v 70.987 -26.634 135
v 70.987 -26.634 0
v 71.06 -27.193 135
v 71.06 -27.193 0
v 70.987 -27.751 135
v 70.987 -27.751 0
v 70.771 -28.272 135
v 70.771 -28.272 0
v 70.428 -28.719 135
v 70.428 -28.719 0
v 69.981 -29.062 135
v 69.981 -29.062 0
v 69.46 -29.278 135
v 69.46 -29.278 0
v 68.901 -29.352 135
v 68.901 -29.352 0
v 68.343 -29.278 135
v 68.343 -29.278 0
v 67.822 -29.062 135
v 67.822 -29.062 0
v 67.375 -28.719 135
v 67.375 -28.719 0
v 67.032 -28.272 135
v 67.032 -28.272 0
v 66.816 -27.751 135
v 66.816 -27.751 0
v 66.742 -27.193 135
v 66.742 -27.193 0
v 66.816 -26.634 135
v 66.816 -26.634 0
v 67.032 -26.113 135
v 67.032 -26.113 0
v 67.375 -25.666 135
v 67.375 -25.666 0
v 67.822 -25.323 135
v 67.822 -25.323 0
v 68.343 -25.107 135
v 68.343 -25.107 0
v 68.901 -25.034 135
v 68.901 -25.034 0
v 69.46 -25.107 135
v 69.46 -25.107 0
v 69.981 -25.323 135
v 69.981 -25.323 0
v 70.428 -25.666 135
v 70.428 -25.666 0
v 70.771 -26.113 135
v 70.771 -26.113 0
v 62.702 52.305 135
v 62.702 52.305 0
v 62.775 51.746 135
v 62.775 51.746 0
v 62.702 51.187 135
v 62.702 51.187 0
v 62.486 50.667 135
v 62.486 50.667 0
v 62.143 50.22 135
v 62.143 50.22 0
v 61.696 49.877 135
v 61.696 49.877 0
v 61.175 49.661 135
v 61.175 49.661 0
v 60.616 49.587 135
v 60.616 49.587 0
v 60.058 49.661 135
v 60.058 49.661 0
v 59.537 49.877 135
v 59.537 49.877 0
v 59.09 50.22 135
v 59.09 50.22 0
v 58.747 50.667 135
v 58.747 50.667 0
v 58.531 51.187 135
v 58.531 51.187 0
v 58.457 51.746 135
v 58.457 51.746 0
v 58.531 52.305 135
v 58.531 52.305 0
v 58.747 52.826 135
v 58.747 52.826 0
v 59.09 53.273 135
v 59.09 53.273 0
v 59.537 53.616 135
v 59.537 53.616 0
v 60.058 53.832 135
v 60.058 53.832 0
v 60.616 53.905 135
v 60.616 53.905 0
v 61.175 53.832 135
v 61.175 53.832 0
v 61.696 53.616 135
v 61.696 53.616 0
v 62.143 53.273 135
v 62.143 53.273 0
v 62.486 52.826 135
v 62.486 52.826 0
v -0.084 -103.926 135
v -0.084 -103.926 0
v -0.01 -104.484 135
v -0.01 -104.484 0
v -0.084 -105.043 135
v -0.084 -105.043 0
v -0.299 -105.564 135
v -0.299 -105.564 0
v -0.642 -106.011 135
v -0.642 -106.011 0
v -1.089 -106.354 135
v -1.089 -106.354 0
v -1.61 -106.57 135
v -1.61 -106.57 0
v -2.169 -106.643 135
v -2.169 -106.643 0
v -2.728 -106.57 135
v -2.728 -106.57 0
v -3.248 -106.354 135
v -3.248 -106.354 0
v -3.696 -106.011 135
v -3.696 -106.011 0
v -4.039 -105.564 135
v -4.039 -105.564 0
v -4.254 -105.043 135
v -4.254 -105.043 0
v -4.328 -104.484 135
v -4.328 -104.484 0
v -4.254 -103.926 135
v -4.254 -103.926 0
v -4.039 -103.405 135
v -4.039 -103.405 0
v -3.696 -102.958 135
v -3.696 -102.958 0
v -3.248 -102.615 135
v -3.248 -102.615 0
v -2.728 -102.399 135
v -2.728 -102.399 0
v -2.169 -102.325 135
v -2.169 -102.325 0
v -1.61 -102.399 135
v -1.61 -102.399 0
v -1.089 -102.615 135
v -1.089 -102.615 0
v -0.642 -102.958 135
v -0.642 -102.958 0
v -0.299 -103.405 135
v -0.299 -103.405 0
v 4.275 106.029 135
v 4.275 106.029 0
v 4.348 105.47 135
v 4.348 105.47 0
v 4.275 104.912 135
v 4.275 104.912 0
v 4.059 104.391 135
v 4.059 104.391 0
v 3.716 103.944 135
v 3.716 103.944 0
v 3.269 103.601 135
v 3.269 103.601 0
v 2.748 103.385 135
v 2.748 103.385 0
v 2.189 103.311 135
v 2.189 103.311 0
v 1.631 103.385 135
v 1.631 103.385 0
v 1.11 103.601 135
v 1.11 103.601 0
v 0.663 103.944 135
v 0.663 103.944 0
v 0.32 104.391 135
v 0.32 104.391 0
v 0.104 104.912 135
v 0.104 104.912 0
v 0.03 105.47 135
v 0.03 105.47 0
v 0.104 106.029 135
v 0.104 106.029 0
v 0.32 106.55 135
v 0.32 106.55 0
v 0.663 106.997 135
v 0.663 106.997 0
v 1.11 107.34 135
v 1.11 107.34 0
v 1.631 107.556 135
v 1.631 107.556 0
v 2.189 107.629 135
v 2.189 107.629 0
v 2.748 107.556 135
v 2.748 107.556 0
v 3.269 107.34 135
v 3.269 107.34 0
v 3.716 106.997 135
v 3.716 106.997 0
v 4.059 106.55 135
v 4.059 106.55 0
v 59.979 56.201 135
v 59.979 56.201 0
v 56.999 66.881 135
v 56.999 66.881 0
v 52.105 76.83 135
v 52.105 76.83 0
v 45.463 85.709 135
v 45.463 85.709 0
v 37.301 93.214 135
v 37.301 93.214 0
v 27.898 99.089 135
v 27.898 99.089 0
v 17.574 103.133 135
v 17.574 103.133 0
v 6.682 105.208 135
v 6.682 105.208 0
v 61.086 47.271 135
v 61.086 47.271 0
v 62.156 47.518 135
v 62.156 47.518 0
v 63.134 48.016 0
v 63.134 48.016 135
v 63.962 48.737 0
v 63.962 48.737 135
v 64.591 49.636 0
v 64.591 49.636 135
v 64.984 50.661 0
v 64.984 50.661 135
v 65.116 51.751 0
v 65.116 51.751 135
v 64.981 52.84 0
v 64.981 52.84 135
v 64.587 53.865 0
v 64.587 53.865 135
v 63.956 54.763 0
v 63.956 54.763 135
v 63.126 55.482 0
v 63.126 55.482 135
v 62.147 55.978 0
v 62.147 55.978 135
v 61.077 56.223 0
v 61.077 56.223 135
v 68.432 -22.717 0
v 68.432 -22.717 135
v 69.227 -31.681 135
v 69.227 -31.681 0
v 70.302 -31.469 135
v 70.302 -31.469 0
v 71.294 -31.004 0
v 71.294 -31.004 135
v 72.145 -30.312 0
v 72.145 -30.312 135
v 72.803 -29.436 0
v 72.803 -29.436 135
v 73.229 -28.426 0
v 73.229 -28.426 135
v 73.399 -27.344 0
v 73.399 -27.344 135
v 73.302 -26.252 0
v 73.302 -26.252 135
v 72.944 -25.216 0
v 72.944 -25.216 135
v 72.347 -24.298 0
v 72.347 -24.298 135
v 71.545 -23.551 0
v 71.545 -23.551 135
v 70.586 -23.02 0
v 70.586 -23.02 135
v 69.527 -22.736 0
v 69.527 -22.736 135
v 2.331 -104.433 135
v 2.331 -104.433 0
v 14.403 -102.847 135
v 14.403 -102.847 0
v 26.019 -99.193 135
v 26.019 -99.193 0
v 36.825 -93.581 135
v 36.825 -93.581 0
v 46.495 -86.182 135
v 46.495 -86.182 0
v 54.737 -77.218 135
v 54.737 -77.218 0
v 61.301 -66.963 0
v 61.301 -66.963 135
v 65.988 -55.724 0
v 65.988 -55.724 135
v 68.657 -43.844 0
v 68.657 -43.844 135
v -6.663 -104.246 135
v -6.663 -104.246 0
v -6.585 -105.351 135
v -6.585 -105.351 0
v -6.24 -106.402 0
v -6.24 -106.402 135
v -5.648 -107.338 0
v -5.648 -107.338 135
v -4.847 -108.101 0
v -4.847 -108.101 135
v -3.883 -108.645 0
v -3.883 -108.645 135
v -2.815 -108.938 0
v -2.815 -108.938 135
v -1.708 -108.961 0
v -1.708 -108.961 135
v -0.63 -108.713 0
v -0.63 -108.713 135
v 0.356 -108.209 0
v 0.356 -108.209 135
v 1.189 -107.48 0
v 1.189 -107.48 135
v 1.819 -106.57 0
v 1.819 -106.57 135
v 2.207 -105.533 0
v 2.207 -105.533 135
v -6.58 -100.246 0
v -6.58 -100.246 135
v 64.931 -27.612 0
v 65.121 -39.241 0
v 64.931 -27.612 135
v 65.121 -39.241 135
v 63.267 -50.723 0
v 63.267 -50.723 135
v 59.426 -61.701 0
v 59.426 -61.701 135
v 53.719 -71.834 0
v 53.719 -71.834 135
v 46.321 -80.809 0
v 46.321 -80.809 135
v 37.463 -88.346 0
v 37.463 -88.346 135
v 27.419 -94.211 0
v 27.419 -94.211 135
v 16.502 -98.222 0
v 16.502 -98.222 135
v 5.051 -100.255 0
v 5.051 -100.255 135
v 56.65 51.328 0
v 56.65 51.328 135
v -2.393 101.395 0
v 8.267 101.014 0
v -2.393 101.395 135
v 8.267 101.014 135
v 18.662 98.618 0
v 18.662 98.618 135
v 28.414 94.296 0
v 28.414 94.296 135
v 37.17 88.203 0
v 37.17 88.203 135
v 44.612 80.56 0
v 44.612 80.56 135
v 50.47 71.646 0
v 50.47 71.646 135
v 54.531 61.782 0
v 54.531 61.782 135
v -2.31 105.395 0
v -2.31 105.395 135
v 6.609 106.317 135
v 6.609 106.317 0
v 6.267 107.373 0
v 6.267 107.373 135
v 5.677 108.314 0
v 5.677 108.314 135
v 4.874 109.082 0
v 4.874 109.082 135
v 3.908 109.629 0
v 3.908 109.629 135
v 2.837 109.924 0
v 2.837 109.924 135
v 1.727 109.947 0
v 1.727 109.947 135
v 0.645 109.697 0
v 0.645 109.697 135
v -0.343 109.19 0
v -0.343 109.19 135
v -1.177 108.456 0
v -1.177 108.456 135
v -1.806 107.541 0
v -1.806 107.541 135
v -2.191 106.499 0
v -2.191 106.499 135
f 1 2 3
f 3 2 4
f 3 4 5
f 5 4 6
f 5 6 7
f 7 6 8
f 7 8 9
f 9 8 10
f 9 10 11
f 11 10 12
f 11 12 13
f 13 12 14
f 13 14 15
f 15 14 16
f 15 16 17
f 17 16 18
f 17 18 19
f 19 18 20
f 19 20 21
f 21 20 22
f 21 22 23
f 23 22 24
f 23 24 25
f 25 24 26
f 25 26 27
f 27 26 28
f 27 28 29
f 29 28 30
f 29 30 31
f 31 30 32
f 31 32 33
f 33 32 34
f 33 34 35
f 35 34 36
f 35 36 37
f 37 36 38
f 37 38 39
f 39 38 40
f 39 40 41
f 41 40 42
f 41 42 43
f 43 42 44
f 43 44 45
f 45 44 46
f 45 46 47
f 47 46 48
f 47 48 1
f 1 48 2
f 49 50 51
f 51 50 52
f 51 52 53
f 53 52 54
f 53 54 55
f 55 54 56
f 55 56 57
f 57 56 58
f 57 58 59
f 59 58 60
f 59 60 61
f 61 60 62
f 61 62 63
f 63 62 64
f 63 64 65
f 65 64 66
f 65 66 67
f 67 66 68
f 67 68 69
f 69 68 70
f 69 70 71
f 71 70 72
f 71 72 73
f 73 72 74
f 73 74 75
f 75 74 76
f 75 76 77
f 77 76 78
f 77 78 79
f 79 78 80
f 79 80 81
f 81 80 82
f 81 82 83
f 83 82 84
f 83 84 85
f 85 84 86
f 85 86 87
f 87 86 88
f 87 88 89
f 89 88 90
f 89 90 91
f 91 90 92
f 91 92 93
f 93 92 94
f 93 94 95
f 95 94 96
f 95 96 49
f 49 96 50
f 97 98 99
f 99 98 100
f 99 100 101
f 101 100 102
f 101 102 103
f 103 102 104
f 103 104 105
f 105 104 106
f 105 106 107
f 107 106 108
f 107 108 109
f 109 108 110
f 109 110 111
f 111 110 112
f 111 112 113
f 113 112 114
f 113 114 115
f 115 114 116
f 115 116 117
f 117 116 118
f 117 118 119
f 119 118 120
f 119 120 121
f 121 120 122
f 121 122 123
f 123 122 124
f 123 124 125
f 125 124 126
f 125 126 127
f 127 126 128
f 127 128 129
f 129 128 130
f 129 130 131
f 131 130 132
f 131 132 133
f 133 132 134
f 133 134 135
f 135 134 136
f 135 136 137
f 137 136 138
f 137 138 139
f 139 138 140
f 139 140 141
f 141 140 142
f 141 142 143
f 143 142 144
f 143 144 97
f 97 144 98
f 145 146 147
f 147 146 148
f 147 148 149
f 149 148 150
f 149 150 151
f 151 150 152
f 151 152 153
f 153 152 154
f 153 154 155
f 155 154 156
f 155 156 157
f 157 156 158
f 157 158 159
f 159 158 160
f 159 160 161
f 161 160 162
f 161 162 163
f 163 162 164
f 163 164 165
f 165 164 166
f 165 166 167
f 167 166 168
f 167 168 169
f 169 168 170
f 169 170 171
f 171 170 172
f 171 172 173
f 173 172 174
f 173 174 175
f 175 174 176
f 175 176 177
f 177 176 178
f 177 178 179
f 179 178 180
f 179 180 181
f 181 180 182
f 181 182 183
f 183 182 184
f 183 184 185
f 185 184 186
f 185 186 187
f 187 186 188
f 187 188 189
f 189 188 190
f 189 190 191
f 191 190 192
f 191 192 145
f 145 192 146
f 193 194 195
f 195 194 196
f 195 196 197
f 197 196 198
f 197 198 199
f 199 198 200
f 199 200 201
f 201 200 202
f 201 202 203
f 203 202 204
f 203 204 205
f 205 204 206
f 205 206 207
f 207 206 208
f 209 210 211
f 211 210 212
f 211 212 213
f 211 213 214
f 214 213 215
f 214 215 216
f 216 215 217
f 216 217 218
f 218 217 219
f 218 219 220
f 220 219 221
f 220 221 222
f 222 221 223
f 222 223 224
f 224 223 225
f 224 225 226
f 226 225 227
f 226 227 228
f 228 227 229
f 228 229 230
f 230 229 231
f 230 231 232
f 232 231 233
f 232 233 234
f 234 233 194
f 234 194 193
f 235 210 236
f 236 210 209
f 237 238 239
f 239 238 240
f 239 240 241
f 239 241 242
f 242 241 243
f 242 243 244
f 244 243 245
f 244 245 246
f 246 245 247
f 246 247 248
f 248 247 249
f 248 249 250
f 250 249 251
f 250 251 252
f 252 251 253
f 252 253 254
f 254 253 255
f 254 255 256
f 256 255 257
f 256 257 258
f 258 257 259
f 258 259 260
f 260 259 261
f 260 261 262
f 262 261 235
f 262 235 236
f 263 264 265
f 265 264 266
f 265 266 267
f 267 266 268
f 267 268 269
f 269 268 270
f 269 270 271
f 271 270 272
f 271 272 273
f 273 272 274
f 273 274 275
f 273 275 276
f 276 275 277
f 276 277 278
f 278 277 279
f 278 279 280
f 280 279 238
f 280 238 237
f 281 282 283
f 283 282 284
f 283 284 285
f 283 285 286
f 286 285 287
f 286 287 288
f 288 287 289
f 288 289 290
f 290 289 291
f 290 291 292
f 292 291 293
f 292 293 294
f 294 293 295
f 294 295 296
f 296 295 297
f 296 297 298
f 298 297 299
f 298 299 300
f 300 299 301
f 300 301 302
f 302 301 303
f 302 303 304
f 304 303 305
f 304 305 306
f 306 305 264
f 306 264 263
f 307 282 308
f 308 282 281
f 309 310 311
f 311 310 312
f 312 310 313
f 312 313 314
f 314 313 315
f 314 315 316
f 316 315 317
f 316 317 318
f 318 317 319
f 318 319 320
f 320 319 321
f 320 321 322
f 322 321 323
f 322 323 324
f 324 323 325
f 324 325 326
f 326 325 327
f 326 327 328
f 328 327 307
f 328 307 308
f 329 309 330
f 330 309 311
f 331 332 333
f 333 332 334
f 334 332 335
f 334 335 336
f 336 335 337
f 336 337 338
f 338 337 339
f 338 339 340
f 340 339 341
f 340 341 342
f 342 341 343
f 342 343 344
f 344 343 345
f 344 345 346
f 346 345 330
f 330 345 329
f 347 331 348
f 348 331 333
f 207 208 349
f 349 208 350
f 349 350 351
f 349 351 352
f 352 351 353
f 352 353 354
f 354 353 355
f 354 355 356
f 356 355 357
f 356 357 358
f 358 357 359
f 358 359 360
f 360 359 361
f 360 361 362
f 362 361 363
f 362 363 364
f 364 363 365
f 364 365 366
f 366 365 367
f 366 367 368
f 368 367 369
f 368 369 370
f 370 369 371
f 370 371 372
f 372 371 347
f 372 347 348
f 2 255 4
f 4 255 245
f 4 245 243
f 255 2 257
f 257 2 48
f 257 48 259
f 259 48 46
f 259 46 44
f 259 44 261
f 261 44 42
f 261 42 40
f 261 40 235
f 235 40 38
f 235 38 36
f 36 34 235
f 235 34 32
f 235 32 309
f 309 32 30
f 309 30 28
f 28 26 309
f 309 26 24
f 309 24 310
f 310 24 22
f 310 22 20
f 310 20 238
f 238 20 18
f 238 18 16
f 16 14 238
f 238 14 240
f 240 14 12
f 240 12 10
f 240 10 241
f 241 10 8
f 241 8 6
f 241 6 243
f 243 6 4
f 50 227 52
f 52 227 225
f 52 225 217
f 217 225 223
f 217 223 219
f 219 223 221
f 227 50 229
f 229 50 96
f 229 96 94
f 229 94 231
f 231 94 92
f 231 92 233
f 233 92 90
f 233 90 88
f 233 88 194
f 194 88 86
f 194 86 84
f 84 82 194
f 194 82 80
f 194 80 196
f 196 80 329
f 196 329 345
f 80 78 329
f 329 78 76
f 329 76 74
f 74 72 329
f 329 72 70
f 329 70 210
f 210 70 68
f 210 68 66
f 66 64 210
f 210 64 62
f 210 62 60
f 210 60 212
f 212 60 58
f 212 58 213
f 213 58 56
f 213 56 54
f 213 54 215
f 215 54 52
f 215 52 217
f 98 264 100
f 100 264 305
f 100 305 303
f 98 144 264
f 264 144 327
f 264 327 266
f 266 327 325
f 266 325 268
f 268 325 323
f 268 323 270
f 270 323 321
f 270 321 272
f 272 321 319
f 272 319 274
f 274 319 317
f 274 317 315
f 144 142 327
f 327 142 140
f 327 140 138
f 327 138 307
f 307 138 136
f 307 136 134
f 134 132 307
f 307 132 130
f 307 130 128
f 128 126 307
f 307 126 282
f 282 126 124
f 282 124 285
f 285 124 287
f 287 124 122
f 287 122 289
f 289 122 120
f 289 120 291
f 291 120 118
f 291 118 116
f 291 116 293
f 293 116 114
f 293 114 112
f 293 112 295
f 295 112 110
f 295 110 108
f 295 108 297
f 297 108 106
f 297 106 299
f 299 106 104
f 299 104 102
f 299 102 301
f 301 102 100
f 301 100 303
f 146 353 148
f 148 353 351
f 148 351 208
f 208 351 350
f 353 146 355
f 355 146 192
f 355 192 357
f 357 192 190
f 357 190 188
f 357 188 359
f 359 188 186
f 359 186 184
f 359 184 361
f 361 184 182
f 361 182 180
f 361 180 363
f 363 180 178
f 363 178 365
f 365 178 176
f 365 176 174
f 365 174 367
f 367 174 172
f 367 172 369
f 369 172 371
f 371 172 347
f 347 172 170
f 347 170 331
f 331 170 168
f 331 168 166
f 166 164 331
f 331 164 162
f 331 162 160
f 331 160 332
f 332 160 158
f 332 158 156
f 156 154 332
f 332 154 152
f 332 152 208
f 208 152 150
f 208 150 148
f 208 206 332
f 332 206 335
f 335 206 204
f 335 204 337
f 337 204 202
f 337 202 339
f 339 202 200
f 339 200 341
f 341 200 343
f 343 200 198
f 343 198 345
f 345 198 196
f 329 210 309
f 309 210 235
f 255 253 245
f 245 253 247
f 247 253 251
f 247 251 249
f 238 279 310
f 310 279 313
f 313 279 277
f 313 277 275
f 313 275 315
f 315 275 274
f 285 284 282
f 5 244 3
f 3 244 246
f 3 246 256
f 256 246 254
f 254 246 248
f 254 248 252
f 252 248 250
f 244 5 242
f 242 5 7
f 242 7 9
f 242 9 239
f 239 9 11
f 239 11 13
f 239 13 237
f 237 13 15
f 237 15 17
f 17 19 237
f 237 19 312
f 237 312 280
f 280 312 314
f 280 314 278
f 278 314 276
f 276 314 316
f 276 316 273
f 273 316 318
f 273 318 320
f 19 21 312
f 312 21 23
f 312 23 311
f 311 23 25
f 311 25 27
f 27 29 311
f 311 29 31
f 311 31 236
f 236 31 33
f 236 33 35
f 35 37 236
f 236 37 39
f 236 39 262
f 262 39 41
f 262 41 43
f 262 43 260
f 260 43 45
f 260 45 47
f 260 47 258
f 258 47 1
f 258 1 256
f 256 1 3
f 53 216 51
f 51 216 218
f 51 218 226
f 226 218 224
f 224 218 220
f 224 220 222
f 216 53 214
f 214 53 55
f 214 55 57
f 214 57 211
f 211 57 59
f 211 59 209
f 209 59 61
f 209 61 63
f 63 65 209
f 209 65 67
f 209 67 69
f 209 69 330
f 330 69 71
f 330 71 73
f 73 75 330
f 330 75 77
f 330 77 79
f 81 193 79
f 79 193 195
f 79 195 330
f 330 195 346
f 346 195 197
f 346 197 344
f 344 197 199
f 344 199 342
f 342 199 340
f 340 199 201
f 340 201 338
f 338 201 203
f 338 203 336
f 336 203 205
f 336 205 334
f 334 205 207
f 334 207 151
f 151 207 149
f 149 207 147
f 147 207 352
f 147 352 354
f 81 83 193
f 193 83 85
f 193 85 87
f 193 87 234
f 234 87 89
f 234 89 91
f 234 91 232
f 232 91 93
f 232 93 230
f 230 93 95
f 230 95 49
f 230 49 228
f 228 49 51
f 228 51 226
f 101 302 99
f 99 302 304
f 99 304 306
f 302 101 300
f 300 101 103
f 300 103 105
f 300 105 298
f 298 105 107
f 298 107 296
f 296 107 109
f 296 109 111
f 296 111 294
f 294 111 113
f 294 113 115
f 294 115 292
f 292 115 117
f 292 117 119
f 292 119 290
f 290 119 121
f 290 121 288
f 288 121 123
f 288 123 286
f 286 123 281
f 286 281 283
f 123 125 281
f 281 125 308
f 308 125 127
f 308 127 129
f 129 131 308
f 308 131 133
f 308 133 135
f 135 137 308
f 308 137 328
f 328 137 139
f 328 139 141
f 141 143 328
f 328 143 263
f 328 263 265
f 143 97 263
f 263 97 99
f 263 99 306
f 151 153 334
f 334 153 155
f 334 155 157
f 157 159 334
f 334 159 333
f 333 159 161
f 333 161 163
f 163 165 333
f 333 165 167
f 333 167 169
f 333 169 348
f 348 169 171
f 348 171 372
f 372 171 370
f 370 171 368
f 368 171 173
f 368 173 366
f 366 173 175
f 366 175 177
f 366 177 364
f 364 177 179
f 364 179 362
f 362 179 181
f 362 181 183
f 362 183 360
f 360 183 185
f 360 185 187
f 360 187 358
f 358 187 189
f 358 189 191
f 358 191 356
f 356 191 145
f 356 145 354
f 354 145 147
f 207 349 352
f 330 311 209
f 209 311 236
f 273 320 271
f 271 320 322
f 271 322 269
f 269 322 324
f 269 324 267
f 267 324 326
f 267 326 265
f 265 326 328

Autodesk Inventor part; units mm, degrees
ref_plane "YZ Plane" through (0, 0, 0) normal (1, 0, 0) x (0, 1, 0)
ref_plane "XZ Plane" through (0, 0, 0) normal (0, 1, 0) x (-1, 0, 0)
ref_plane "XY Plane" through (0, 0, 0) normal (0, 0, 1) x (1, 0, 0)
ref_plane "Work Plane1" through (0, 0, 0) normal (0, 0, 1) x (1, 0, 0)
sketch "Sketch1" plane through (0, 0, 0) normal (0, 0, 1) x (1, 0, 0)
  circle A0 centre (-55.8916, -14.7421) radius 1.397 projected
  circle A1 centre (-83.8916, 18.2579) radius 1.397 projected
  circle A2 centre (-83.8916, -14.7421) radius 1.397 projected
  circle A3 centre (-55.8916, 18.2579) radius 1.397 projected
  circle A4 centre (2.1895, 105.4705) radius 2.159 projected
  circle A5 centre (-2.169, -104.4843) radius 2.159 projected
  circle A6 centre (60.6164, 51.7463) radius 2.159 projected
  circle A7 centre (-58.4167, 54.2173) radius 2.159 projected
  arc A8 (6.6818, 105.2084) -> (-2.3099, 105.3951) centre (2.1895, 105.4705) ccw projected
  arc A9 (-2.3099, 105.3951) -> (-57.5952, 58.6417) centre (0.9442, 45.4834) ccw construction
  arc A10 (-57.5952, 58.6417) -> (-59.0718, 49.7652) centre (-58.4167, 54.2173) ccw projected
  line L0 (-59.0718, 49.7652) -> (-63.1925, 21.7579) projected
  line L1 (-87.8916, 21.7579) -> (-63.1925, 21.7579) projected
  line L2 (-87.8916, -18.2421) -> (-87.8916, 21.7579) projected
  line L3 (-87.8916, -18.2421) -> (-74.0344, -26.2425) projected
  arc A11 (-74.0344, -26.2425) -> (-70.4822, -28.7807) centre (-69.9706, -24.3098) ccw projected
  arc A12 (-70.4822, -28.7807) -> (-6.6627, -104.2463) centre (-0.7162, -34.4994) ccw construction
  arc A13 (-6.6627, -104.2463) -> (2.3307, -104.433) centre (-2.169, -104.4843) ccw projected
  arc A14 (2.3307, -104.433) -> (69.2271, -31.6809) centre (-0.7162, -34.4994) ccw projected
  arc A15 (69.2271, -31.6809) -> (68.4317, -22.7173) centre (68.9014, -27.1927) ccw projected
  line L4 (68.4317, -22.7173) -> (61.0862, 47.2708) projected
  arc A16 (61.0862, 47.2708) -> (59.9792, 56.2009) centre (60.6164, 51.7463) ccw projected
  arc A17 (59.9792, 56.2009) -> (6.6818, 105.2084) centre (0.9442, 45.4834) ccw projected
  circle A18 centre (-69.9706, -24.3098) radius 2.159 projected
  circle A19 centre (68.9014, -27.1927) radius 2.159 projected
  circle A20 centre (0.9442, 45.4834) radius 17.5 projected
  circle A21 centre (-0.7162, -34.4994) radius 17.5 projected
  circle A22 centre (-66.7556, 10.6536) radius 4 projected
  circle A23 centre (-75.8916, -7.1378) radius 4 projected
  line L5 (-6.6627, -104.2463) -> (-2.3099, 105.3951) construction
  line L6 (-6.6627, -104.2463) -> (-6.5797, -100.2463)
  line L7 (-2.3099, 105.3951) -> (-2.393, 101.3951)
  arc A24 (-6.5797, -100.2463) -> (64.9314, -27.6121) centre (-0.7162, -34.4994) ccw
  arc A25 (56.6497, 51.3276) -> (-2.393, 101.3951) centre (0.9442, 45.4834) ccw
  line L8 (64.9314, -27.6121) -> (56.6497, 51.3276)
  point P0 (0, 0)
  dimension "d0" = 4
  dimension "d1" = 4
extrude "Extrusion1" add sketch "Sketch1" along normal blind 135 contours A17 A16 L4 A15 A14 A13 L6 A24 L8 A25 L7 A8
properties part number "case bottom half"
